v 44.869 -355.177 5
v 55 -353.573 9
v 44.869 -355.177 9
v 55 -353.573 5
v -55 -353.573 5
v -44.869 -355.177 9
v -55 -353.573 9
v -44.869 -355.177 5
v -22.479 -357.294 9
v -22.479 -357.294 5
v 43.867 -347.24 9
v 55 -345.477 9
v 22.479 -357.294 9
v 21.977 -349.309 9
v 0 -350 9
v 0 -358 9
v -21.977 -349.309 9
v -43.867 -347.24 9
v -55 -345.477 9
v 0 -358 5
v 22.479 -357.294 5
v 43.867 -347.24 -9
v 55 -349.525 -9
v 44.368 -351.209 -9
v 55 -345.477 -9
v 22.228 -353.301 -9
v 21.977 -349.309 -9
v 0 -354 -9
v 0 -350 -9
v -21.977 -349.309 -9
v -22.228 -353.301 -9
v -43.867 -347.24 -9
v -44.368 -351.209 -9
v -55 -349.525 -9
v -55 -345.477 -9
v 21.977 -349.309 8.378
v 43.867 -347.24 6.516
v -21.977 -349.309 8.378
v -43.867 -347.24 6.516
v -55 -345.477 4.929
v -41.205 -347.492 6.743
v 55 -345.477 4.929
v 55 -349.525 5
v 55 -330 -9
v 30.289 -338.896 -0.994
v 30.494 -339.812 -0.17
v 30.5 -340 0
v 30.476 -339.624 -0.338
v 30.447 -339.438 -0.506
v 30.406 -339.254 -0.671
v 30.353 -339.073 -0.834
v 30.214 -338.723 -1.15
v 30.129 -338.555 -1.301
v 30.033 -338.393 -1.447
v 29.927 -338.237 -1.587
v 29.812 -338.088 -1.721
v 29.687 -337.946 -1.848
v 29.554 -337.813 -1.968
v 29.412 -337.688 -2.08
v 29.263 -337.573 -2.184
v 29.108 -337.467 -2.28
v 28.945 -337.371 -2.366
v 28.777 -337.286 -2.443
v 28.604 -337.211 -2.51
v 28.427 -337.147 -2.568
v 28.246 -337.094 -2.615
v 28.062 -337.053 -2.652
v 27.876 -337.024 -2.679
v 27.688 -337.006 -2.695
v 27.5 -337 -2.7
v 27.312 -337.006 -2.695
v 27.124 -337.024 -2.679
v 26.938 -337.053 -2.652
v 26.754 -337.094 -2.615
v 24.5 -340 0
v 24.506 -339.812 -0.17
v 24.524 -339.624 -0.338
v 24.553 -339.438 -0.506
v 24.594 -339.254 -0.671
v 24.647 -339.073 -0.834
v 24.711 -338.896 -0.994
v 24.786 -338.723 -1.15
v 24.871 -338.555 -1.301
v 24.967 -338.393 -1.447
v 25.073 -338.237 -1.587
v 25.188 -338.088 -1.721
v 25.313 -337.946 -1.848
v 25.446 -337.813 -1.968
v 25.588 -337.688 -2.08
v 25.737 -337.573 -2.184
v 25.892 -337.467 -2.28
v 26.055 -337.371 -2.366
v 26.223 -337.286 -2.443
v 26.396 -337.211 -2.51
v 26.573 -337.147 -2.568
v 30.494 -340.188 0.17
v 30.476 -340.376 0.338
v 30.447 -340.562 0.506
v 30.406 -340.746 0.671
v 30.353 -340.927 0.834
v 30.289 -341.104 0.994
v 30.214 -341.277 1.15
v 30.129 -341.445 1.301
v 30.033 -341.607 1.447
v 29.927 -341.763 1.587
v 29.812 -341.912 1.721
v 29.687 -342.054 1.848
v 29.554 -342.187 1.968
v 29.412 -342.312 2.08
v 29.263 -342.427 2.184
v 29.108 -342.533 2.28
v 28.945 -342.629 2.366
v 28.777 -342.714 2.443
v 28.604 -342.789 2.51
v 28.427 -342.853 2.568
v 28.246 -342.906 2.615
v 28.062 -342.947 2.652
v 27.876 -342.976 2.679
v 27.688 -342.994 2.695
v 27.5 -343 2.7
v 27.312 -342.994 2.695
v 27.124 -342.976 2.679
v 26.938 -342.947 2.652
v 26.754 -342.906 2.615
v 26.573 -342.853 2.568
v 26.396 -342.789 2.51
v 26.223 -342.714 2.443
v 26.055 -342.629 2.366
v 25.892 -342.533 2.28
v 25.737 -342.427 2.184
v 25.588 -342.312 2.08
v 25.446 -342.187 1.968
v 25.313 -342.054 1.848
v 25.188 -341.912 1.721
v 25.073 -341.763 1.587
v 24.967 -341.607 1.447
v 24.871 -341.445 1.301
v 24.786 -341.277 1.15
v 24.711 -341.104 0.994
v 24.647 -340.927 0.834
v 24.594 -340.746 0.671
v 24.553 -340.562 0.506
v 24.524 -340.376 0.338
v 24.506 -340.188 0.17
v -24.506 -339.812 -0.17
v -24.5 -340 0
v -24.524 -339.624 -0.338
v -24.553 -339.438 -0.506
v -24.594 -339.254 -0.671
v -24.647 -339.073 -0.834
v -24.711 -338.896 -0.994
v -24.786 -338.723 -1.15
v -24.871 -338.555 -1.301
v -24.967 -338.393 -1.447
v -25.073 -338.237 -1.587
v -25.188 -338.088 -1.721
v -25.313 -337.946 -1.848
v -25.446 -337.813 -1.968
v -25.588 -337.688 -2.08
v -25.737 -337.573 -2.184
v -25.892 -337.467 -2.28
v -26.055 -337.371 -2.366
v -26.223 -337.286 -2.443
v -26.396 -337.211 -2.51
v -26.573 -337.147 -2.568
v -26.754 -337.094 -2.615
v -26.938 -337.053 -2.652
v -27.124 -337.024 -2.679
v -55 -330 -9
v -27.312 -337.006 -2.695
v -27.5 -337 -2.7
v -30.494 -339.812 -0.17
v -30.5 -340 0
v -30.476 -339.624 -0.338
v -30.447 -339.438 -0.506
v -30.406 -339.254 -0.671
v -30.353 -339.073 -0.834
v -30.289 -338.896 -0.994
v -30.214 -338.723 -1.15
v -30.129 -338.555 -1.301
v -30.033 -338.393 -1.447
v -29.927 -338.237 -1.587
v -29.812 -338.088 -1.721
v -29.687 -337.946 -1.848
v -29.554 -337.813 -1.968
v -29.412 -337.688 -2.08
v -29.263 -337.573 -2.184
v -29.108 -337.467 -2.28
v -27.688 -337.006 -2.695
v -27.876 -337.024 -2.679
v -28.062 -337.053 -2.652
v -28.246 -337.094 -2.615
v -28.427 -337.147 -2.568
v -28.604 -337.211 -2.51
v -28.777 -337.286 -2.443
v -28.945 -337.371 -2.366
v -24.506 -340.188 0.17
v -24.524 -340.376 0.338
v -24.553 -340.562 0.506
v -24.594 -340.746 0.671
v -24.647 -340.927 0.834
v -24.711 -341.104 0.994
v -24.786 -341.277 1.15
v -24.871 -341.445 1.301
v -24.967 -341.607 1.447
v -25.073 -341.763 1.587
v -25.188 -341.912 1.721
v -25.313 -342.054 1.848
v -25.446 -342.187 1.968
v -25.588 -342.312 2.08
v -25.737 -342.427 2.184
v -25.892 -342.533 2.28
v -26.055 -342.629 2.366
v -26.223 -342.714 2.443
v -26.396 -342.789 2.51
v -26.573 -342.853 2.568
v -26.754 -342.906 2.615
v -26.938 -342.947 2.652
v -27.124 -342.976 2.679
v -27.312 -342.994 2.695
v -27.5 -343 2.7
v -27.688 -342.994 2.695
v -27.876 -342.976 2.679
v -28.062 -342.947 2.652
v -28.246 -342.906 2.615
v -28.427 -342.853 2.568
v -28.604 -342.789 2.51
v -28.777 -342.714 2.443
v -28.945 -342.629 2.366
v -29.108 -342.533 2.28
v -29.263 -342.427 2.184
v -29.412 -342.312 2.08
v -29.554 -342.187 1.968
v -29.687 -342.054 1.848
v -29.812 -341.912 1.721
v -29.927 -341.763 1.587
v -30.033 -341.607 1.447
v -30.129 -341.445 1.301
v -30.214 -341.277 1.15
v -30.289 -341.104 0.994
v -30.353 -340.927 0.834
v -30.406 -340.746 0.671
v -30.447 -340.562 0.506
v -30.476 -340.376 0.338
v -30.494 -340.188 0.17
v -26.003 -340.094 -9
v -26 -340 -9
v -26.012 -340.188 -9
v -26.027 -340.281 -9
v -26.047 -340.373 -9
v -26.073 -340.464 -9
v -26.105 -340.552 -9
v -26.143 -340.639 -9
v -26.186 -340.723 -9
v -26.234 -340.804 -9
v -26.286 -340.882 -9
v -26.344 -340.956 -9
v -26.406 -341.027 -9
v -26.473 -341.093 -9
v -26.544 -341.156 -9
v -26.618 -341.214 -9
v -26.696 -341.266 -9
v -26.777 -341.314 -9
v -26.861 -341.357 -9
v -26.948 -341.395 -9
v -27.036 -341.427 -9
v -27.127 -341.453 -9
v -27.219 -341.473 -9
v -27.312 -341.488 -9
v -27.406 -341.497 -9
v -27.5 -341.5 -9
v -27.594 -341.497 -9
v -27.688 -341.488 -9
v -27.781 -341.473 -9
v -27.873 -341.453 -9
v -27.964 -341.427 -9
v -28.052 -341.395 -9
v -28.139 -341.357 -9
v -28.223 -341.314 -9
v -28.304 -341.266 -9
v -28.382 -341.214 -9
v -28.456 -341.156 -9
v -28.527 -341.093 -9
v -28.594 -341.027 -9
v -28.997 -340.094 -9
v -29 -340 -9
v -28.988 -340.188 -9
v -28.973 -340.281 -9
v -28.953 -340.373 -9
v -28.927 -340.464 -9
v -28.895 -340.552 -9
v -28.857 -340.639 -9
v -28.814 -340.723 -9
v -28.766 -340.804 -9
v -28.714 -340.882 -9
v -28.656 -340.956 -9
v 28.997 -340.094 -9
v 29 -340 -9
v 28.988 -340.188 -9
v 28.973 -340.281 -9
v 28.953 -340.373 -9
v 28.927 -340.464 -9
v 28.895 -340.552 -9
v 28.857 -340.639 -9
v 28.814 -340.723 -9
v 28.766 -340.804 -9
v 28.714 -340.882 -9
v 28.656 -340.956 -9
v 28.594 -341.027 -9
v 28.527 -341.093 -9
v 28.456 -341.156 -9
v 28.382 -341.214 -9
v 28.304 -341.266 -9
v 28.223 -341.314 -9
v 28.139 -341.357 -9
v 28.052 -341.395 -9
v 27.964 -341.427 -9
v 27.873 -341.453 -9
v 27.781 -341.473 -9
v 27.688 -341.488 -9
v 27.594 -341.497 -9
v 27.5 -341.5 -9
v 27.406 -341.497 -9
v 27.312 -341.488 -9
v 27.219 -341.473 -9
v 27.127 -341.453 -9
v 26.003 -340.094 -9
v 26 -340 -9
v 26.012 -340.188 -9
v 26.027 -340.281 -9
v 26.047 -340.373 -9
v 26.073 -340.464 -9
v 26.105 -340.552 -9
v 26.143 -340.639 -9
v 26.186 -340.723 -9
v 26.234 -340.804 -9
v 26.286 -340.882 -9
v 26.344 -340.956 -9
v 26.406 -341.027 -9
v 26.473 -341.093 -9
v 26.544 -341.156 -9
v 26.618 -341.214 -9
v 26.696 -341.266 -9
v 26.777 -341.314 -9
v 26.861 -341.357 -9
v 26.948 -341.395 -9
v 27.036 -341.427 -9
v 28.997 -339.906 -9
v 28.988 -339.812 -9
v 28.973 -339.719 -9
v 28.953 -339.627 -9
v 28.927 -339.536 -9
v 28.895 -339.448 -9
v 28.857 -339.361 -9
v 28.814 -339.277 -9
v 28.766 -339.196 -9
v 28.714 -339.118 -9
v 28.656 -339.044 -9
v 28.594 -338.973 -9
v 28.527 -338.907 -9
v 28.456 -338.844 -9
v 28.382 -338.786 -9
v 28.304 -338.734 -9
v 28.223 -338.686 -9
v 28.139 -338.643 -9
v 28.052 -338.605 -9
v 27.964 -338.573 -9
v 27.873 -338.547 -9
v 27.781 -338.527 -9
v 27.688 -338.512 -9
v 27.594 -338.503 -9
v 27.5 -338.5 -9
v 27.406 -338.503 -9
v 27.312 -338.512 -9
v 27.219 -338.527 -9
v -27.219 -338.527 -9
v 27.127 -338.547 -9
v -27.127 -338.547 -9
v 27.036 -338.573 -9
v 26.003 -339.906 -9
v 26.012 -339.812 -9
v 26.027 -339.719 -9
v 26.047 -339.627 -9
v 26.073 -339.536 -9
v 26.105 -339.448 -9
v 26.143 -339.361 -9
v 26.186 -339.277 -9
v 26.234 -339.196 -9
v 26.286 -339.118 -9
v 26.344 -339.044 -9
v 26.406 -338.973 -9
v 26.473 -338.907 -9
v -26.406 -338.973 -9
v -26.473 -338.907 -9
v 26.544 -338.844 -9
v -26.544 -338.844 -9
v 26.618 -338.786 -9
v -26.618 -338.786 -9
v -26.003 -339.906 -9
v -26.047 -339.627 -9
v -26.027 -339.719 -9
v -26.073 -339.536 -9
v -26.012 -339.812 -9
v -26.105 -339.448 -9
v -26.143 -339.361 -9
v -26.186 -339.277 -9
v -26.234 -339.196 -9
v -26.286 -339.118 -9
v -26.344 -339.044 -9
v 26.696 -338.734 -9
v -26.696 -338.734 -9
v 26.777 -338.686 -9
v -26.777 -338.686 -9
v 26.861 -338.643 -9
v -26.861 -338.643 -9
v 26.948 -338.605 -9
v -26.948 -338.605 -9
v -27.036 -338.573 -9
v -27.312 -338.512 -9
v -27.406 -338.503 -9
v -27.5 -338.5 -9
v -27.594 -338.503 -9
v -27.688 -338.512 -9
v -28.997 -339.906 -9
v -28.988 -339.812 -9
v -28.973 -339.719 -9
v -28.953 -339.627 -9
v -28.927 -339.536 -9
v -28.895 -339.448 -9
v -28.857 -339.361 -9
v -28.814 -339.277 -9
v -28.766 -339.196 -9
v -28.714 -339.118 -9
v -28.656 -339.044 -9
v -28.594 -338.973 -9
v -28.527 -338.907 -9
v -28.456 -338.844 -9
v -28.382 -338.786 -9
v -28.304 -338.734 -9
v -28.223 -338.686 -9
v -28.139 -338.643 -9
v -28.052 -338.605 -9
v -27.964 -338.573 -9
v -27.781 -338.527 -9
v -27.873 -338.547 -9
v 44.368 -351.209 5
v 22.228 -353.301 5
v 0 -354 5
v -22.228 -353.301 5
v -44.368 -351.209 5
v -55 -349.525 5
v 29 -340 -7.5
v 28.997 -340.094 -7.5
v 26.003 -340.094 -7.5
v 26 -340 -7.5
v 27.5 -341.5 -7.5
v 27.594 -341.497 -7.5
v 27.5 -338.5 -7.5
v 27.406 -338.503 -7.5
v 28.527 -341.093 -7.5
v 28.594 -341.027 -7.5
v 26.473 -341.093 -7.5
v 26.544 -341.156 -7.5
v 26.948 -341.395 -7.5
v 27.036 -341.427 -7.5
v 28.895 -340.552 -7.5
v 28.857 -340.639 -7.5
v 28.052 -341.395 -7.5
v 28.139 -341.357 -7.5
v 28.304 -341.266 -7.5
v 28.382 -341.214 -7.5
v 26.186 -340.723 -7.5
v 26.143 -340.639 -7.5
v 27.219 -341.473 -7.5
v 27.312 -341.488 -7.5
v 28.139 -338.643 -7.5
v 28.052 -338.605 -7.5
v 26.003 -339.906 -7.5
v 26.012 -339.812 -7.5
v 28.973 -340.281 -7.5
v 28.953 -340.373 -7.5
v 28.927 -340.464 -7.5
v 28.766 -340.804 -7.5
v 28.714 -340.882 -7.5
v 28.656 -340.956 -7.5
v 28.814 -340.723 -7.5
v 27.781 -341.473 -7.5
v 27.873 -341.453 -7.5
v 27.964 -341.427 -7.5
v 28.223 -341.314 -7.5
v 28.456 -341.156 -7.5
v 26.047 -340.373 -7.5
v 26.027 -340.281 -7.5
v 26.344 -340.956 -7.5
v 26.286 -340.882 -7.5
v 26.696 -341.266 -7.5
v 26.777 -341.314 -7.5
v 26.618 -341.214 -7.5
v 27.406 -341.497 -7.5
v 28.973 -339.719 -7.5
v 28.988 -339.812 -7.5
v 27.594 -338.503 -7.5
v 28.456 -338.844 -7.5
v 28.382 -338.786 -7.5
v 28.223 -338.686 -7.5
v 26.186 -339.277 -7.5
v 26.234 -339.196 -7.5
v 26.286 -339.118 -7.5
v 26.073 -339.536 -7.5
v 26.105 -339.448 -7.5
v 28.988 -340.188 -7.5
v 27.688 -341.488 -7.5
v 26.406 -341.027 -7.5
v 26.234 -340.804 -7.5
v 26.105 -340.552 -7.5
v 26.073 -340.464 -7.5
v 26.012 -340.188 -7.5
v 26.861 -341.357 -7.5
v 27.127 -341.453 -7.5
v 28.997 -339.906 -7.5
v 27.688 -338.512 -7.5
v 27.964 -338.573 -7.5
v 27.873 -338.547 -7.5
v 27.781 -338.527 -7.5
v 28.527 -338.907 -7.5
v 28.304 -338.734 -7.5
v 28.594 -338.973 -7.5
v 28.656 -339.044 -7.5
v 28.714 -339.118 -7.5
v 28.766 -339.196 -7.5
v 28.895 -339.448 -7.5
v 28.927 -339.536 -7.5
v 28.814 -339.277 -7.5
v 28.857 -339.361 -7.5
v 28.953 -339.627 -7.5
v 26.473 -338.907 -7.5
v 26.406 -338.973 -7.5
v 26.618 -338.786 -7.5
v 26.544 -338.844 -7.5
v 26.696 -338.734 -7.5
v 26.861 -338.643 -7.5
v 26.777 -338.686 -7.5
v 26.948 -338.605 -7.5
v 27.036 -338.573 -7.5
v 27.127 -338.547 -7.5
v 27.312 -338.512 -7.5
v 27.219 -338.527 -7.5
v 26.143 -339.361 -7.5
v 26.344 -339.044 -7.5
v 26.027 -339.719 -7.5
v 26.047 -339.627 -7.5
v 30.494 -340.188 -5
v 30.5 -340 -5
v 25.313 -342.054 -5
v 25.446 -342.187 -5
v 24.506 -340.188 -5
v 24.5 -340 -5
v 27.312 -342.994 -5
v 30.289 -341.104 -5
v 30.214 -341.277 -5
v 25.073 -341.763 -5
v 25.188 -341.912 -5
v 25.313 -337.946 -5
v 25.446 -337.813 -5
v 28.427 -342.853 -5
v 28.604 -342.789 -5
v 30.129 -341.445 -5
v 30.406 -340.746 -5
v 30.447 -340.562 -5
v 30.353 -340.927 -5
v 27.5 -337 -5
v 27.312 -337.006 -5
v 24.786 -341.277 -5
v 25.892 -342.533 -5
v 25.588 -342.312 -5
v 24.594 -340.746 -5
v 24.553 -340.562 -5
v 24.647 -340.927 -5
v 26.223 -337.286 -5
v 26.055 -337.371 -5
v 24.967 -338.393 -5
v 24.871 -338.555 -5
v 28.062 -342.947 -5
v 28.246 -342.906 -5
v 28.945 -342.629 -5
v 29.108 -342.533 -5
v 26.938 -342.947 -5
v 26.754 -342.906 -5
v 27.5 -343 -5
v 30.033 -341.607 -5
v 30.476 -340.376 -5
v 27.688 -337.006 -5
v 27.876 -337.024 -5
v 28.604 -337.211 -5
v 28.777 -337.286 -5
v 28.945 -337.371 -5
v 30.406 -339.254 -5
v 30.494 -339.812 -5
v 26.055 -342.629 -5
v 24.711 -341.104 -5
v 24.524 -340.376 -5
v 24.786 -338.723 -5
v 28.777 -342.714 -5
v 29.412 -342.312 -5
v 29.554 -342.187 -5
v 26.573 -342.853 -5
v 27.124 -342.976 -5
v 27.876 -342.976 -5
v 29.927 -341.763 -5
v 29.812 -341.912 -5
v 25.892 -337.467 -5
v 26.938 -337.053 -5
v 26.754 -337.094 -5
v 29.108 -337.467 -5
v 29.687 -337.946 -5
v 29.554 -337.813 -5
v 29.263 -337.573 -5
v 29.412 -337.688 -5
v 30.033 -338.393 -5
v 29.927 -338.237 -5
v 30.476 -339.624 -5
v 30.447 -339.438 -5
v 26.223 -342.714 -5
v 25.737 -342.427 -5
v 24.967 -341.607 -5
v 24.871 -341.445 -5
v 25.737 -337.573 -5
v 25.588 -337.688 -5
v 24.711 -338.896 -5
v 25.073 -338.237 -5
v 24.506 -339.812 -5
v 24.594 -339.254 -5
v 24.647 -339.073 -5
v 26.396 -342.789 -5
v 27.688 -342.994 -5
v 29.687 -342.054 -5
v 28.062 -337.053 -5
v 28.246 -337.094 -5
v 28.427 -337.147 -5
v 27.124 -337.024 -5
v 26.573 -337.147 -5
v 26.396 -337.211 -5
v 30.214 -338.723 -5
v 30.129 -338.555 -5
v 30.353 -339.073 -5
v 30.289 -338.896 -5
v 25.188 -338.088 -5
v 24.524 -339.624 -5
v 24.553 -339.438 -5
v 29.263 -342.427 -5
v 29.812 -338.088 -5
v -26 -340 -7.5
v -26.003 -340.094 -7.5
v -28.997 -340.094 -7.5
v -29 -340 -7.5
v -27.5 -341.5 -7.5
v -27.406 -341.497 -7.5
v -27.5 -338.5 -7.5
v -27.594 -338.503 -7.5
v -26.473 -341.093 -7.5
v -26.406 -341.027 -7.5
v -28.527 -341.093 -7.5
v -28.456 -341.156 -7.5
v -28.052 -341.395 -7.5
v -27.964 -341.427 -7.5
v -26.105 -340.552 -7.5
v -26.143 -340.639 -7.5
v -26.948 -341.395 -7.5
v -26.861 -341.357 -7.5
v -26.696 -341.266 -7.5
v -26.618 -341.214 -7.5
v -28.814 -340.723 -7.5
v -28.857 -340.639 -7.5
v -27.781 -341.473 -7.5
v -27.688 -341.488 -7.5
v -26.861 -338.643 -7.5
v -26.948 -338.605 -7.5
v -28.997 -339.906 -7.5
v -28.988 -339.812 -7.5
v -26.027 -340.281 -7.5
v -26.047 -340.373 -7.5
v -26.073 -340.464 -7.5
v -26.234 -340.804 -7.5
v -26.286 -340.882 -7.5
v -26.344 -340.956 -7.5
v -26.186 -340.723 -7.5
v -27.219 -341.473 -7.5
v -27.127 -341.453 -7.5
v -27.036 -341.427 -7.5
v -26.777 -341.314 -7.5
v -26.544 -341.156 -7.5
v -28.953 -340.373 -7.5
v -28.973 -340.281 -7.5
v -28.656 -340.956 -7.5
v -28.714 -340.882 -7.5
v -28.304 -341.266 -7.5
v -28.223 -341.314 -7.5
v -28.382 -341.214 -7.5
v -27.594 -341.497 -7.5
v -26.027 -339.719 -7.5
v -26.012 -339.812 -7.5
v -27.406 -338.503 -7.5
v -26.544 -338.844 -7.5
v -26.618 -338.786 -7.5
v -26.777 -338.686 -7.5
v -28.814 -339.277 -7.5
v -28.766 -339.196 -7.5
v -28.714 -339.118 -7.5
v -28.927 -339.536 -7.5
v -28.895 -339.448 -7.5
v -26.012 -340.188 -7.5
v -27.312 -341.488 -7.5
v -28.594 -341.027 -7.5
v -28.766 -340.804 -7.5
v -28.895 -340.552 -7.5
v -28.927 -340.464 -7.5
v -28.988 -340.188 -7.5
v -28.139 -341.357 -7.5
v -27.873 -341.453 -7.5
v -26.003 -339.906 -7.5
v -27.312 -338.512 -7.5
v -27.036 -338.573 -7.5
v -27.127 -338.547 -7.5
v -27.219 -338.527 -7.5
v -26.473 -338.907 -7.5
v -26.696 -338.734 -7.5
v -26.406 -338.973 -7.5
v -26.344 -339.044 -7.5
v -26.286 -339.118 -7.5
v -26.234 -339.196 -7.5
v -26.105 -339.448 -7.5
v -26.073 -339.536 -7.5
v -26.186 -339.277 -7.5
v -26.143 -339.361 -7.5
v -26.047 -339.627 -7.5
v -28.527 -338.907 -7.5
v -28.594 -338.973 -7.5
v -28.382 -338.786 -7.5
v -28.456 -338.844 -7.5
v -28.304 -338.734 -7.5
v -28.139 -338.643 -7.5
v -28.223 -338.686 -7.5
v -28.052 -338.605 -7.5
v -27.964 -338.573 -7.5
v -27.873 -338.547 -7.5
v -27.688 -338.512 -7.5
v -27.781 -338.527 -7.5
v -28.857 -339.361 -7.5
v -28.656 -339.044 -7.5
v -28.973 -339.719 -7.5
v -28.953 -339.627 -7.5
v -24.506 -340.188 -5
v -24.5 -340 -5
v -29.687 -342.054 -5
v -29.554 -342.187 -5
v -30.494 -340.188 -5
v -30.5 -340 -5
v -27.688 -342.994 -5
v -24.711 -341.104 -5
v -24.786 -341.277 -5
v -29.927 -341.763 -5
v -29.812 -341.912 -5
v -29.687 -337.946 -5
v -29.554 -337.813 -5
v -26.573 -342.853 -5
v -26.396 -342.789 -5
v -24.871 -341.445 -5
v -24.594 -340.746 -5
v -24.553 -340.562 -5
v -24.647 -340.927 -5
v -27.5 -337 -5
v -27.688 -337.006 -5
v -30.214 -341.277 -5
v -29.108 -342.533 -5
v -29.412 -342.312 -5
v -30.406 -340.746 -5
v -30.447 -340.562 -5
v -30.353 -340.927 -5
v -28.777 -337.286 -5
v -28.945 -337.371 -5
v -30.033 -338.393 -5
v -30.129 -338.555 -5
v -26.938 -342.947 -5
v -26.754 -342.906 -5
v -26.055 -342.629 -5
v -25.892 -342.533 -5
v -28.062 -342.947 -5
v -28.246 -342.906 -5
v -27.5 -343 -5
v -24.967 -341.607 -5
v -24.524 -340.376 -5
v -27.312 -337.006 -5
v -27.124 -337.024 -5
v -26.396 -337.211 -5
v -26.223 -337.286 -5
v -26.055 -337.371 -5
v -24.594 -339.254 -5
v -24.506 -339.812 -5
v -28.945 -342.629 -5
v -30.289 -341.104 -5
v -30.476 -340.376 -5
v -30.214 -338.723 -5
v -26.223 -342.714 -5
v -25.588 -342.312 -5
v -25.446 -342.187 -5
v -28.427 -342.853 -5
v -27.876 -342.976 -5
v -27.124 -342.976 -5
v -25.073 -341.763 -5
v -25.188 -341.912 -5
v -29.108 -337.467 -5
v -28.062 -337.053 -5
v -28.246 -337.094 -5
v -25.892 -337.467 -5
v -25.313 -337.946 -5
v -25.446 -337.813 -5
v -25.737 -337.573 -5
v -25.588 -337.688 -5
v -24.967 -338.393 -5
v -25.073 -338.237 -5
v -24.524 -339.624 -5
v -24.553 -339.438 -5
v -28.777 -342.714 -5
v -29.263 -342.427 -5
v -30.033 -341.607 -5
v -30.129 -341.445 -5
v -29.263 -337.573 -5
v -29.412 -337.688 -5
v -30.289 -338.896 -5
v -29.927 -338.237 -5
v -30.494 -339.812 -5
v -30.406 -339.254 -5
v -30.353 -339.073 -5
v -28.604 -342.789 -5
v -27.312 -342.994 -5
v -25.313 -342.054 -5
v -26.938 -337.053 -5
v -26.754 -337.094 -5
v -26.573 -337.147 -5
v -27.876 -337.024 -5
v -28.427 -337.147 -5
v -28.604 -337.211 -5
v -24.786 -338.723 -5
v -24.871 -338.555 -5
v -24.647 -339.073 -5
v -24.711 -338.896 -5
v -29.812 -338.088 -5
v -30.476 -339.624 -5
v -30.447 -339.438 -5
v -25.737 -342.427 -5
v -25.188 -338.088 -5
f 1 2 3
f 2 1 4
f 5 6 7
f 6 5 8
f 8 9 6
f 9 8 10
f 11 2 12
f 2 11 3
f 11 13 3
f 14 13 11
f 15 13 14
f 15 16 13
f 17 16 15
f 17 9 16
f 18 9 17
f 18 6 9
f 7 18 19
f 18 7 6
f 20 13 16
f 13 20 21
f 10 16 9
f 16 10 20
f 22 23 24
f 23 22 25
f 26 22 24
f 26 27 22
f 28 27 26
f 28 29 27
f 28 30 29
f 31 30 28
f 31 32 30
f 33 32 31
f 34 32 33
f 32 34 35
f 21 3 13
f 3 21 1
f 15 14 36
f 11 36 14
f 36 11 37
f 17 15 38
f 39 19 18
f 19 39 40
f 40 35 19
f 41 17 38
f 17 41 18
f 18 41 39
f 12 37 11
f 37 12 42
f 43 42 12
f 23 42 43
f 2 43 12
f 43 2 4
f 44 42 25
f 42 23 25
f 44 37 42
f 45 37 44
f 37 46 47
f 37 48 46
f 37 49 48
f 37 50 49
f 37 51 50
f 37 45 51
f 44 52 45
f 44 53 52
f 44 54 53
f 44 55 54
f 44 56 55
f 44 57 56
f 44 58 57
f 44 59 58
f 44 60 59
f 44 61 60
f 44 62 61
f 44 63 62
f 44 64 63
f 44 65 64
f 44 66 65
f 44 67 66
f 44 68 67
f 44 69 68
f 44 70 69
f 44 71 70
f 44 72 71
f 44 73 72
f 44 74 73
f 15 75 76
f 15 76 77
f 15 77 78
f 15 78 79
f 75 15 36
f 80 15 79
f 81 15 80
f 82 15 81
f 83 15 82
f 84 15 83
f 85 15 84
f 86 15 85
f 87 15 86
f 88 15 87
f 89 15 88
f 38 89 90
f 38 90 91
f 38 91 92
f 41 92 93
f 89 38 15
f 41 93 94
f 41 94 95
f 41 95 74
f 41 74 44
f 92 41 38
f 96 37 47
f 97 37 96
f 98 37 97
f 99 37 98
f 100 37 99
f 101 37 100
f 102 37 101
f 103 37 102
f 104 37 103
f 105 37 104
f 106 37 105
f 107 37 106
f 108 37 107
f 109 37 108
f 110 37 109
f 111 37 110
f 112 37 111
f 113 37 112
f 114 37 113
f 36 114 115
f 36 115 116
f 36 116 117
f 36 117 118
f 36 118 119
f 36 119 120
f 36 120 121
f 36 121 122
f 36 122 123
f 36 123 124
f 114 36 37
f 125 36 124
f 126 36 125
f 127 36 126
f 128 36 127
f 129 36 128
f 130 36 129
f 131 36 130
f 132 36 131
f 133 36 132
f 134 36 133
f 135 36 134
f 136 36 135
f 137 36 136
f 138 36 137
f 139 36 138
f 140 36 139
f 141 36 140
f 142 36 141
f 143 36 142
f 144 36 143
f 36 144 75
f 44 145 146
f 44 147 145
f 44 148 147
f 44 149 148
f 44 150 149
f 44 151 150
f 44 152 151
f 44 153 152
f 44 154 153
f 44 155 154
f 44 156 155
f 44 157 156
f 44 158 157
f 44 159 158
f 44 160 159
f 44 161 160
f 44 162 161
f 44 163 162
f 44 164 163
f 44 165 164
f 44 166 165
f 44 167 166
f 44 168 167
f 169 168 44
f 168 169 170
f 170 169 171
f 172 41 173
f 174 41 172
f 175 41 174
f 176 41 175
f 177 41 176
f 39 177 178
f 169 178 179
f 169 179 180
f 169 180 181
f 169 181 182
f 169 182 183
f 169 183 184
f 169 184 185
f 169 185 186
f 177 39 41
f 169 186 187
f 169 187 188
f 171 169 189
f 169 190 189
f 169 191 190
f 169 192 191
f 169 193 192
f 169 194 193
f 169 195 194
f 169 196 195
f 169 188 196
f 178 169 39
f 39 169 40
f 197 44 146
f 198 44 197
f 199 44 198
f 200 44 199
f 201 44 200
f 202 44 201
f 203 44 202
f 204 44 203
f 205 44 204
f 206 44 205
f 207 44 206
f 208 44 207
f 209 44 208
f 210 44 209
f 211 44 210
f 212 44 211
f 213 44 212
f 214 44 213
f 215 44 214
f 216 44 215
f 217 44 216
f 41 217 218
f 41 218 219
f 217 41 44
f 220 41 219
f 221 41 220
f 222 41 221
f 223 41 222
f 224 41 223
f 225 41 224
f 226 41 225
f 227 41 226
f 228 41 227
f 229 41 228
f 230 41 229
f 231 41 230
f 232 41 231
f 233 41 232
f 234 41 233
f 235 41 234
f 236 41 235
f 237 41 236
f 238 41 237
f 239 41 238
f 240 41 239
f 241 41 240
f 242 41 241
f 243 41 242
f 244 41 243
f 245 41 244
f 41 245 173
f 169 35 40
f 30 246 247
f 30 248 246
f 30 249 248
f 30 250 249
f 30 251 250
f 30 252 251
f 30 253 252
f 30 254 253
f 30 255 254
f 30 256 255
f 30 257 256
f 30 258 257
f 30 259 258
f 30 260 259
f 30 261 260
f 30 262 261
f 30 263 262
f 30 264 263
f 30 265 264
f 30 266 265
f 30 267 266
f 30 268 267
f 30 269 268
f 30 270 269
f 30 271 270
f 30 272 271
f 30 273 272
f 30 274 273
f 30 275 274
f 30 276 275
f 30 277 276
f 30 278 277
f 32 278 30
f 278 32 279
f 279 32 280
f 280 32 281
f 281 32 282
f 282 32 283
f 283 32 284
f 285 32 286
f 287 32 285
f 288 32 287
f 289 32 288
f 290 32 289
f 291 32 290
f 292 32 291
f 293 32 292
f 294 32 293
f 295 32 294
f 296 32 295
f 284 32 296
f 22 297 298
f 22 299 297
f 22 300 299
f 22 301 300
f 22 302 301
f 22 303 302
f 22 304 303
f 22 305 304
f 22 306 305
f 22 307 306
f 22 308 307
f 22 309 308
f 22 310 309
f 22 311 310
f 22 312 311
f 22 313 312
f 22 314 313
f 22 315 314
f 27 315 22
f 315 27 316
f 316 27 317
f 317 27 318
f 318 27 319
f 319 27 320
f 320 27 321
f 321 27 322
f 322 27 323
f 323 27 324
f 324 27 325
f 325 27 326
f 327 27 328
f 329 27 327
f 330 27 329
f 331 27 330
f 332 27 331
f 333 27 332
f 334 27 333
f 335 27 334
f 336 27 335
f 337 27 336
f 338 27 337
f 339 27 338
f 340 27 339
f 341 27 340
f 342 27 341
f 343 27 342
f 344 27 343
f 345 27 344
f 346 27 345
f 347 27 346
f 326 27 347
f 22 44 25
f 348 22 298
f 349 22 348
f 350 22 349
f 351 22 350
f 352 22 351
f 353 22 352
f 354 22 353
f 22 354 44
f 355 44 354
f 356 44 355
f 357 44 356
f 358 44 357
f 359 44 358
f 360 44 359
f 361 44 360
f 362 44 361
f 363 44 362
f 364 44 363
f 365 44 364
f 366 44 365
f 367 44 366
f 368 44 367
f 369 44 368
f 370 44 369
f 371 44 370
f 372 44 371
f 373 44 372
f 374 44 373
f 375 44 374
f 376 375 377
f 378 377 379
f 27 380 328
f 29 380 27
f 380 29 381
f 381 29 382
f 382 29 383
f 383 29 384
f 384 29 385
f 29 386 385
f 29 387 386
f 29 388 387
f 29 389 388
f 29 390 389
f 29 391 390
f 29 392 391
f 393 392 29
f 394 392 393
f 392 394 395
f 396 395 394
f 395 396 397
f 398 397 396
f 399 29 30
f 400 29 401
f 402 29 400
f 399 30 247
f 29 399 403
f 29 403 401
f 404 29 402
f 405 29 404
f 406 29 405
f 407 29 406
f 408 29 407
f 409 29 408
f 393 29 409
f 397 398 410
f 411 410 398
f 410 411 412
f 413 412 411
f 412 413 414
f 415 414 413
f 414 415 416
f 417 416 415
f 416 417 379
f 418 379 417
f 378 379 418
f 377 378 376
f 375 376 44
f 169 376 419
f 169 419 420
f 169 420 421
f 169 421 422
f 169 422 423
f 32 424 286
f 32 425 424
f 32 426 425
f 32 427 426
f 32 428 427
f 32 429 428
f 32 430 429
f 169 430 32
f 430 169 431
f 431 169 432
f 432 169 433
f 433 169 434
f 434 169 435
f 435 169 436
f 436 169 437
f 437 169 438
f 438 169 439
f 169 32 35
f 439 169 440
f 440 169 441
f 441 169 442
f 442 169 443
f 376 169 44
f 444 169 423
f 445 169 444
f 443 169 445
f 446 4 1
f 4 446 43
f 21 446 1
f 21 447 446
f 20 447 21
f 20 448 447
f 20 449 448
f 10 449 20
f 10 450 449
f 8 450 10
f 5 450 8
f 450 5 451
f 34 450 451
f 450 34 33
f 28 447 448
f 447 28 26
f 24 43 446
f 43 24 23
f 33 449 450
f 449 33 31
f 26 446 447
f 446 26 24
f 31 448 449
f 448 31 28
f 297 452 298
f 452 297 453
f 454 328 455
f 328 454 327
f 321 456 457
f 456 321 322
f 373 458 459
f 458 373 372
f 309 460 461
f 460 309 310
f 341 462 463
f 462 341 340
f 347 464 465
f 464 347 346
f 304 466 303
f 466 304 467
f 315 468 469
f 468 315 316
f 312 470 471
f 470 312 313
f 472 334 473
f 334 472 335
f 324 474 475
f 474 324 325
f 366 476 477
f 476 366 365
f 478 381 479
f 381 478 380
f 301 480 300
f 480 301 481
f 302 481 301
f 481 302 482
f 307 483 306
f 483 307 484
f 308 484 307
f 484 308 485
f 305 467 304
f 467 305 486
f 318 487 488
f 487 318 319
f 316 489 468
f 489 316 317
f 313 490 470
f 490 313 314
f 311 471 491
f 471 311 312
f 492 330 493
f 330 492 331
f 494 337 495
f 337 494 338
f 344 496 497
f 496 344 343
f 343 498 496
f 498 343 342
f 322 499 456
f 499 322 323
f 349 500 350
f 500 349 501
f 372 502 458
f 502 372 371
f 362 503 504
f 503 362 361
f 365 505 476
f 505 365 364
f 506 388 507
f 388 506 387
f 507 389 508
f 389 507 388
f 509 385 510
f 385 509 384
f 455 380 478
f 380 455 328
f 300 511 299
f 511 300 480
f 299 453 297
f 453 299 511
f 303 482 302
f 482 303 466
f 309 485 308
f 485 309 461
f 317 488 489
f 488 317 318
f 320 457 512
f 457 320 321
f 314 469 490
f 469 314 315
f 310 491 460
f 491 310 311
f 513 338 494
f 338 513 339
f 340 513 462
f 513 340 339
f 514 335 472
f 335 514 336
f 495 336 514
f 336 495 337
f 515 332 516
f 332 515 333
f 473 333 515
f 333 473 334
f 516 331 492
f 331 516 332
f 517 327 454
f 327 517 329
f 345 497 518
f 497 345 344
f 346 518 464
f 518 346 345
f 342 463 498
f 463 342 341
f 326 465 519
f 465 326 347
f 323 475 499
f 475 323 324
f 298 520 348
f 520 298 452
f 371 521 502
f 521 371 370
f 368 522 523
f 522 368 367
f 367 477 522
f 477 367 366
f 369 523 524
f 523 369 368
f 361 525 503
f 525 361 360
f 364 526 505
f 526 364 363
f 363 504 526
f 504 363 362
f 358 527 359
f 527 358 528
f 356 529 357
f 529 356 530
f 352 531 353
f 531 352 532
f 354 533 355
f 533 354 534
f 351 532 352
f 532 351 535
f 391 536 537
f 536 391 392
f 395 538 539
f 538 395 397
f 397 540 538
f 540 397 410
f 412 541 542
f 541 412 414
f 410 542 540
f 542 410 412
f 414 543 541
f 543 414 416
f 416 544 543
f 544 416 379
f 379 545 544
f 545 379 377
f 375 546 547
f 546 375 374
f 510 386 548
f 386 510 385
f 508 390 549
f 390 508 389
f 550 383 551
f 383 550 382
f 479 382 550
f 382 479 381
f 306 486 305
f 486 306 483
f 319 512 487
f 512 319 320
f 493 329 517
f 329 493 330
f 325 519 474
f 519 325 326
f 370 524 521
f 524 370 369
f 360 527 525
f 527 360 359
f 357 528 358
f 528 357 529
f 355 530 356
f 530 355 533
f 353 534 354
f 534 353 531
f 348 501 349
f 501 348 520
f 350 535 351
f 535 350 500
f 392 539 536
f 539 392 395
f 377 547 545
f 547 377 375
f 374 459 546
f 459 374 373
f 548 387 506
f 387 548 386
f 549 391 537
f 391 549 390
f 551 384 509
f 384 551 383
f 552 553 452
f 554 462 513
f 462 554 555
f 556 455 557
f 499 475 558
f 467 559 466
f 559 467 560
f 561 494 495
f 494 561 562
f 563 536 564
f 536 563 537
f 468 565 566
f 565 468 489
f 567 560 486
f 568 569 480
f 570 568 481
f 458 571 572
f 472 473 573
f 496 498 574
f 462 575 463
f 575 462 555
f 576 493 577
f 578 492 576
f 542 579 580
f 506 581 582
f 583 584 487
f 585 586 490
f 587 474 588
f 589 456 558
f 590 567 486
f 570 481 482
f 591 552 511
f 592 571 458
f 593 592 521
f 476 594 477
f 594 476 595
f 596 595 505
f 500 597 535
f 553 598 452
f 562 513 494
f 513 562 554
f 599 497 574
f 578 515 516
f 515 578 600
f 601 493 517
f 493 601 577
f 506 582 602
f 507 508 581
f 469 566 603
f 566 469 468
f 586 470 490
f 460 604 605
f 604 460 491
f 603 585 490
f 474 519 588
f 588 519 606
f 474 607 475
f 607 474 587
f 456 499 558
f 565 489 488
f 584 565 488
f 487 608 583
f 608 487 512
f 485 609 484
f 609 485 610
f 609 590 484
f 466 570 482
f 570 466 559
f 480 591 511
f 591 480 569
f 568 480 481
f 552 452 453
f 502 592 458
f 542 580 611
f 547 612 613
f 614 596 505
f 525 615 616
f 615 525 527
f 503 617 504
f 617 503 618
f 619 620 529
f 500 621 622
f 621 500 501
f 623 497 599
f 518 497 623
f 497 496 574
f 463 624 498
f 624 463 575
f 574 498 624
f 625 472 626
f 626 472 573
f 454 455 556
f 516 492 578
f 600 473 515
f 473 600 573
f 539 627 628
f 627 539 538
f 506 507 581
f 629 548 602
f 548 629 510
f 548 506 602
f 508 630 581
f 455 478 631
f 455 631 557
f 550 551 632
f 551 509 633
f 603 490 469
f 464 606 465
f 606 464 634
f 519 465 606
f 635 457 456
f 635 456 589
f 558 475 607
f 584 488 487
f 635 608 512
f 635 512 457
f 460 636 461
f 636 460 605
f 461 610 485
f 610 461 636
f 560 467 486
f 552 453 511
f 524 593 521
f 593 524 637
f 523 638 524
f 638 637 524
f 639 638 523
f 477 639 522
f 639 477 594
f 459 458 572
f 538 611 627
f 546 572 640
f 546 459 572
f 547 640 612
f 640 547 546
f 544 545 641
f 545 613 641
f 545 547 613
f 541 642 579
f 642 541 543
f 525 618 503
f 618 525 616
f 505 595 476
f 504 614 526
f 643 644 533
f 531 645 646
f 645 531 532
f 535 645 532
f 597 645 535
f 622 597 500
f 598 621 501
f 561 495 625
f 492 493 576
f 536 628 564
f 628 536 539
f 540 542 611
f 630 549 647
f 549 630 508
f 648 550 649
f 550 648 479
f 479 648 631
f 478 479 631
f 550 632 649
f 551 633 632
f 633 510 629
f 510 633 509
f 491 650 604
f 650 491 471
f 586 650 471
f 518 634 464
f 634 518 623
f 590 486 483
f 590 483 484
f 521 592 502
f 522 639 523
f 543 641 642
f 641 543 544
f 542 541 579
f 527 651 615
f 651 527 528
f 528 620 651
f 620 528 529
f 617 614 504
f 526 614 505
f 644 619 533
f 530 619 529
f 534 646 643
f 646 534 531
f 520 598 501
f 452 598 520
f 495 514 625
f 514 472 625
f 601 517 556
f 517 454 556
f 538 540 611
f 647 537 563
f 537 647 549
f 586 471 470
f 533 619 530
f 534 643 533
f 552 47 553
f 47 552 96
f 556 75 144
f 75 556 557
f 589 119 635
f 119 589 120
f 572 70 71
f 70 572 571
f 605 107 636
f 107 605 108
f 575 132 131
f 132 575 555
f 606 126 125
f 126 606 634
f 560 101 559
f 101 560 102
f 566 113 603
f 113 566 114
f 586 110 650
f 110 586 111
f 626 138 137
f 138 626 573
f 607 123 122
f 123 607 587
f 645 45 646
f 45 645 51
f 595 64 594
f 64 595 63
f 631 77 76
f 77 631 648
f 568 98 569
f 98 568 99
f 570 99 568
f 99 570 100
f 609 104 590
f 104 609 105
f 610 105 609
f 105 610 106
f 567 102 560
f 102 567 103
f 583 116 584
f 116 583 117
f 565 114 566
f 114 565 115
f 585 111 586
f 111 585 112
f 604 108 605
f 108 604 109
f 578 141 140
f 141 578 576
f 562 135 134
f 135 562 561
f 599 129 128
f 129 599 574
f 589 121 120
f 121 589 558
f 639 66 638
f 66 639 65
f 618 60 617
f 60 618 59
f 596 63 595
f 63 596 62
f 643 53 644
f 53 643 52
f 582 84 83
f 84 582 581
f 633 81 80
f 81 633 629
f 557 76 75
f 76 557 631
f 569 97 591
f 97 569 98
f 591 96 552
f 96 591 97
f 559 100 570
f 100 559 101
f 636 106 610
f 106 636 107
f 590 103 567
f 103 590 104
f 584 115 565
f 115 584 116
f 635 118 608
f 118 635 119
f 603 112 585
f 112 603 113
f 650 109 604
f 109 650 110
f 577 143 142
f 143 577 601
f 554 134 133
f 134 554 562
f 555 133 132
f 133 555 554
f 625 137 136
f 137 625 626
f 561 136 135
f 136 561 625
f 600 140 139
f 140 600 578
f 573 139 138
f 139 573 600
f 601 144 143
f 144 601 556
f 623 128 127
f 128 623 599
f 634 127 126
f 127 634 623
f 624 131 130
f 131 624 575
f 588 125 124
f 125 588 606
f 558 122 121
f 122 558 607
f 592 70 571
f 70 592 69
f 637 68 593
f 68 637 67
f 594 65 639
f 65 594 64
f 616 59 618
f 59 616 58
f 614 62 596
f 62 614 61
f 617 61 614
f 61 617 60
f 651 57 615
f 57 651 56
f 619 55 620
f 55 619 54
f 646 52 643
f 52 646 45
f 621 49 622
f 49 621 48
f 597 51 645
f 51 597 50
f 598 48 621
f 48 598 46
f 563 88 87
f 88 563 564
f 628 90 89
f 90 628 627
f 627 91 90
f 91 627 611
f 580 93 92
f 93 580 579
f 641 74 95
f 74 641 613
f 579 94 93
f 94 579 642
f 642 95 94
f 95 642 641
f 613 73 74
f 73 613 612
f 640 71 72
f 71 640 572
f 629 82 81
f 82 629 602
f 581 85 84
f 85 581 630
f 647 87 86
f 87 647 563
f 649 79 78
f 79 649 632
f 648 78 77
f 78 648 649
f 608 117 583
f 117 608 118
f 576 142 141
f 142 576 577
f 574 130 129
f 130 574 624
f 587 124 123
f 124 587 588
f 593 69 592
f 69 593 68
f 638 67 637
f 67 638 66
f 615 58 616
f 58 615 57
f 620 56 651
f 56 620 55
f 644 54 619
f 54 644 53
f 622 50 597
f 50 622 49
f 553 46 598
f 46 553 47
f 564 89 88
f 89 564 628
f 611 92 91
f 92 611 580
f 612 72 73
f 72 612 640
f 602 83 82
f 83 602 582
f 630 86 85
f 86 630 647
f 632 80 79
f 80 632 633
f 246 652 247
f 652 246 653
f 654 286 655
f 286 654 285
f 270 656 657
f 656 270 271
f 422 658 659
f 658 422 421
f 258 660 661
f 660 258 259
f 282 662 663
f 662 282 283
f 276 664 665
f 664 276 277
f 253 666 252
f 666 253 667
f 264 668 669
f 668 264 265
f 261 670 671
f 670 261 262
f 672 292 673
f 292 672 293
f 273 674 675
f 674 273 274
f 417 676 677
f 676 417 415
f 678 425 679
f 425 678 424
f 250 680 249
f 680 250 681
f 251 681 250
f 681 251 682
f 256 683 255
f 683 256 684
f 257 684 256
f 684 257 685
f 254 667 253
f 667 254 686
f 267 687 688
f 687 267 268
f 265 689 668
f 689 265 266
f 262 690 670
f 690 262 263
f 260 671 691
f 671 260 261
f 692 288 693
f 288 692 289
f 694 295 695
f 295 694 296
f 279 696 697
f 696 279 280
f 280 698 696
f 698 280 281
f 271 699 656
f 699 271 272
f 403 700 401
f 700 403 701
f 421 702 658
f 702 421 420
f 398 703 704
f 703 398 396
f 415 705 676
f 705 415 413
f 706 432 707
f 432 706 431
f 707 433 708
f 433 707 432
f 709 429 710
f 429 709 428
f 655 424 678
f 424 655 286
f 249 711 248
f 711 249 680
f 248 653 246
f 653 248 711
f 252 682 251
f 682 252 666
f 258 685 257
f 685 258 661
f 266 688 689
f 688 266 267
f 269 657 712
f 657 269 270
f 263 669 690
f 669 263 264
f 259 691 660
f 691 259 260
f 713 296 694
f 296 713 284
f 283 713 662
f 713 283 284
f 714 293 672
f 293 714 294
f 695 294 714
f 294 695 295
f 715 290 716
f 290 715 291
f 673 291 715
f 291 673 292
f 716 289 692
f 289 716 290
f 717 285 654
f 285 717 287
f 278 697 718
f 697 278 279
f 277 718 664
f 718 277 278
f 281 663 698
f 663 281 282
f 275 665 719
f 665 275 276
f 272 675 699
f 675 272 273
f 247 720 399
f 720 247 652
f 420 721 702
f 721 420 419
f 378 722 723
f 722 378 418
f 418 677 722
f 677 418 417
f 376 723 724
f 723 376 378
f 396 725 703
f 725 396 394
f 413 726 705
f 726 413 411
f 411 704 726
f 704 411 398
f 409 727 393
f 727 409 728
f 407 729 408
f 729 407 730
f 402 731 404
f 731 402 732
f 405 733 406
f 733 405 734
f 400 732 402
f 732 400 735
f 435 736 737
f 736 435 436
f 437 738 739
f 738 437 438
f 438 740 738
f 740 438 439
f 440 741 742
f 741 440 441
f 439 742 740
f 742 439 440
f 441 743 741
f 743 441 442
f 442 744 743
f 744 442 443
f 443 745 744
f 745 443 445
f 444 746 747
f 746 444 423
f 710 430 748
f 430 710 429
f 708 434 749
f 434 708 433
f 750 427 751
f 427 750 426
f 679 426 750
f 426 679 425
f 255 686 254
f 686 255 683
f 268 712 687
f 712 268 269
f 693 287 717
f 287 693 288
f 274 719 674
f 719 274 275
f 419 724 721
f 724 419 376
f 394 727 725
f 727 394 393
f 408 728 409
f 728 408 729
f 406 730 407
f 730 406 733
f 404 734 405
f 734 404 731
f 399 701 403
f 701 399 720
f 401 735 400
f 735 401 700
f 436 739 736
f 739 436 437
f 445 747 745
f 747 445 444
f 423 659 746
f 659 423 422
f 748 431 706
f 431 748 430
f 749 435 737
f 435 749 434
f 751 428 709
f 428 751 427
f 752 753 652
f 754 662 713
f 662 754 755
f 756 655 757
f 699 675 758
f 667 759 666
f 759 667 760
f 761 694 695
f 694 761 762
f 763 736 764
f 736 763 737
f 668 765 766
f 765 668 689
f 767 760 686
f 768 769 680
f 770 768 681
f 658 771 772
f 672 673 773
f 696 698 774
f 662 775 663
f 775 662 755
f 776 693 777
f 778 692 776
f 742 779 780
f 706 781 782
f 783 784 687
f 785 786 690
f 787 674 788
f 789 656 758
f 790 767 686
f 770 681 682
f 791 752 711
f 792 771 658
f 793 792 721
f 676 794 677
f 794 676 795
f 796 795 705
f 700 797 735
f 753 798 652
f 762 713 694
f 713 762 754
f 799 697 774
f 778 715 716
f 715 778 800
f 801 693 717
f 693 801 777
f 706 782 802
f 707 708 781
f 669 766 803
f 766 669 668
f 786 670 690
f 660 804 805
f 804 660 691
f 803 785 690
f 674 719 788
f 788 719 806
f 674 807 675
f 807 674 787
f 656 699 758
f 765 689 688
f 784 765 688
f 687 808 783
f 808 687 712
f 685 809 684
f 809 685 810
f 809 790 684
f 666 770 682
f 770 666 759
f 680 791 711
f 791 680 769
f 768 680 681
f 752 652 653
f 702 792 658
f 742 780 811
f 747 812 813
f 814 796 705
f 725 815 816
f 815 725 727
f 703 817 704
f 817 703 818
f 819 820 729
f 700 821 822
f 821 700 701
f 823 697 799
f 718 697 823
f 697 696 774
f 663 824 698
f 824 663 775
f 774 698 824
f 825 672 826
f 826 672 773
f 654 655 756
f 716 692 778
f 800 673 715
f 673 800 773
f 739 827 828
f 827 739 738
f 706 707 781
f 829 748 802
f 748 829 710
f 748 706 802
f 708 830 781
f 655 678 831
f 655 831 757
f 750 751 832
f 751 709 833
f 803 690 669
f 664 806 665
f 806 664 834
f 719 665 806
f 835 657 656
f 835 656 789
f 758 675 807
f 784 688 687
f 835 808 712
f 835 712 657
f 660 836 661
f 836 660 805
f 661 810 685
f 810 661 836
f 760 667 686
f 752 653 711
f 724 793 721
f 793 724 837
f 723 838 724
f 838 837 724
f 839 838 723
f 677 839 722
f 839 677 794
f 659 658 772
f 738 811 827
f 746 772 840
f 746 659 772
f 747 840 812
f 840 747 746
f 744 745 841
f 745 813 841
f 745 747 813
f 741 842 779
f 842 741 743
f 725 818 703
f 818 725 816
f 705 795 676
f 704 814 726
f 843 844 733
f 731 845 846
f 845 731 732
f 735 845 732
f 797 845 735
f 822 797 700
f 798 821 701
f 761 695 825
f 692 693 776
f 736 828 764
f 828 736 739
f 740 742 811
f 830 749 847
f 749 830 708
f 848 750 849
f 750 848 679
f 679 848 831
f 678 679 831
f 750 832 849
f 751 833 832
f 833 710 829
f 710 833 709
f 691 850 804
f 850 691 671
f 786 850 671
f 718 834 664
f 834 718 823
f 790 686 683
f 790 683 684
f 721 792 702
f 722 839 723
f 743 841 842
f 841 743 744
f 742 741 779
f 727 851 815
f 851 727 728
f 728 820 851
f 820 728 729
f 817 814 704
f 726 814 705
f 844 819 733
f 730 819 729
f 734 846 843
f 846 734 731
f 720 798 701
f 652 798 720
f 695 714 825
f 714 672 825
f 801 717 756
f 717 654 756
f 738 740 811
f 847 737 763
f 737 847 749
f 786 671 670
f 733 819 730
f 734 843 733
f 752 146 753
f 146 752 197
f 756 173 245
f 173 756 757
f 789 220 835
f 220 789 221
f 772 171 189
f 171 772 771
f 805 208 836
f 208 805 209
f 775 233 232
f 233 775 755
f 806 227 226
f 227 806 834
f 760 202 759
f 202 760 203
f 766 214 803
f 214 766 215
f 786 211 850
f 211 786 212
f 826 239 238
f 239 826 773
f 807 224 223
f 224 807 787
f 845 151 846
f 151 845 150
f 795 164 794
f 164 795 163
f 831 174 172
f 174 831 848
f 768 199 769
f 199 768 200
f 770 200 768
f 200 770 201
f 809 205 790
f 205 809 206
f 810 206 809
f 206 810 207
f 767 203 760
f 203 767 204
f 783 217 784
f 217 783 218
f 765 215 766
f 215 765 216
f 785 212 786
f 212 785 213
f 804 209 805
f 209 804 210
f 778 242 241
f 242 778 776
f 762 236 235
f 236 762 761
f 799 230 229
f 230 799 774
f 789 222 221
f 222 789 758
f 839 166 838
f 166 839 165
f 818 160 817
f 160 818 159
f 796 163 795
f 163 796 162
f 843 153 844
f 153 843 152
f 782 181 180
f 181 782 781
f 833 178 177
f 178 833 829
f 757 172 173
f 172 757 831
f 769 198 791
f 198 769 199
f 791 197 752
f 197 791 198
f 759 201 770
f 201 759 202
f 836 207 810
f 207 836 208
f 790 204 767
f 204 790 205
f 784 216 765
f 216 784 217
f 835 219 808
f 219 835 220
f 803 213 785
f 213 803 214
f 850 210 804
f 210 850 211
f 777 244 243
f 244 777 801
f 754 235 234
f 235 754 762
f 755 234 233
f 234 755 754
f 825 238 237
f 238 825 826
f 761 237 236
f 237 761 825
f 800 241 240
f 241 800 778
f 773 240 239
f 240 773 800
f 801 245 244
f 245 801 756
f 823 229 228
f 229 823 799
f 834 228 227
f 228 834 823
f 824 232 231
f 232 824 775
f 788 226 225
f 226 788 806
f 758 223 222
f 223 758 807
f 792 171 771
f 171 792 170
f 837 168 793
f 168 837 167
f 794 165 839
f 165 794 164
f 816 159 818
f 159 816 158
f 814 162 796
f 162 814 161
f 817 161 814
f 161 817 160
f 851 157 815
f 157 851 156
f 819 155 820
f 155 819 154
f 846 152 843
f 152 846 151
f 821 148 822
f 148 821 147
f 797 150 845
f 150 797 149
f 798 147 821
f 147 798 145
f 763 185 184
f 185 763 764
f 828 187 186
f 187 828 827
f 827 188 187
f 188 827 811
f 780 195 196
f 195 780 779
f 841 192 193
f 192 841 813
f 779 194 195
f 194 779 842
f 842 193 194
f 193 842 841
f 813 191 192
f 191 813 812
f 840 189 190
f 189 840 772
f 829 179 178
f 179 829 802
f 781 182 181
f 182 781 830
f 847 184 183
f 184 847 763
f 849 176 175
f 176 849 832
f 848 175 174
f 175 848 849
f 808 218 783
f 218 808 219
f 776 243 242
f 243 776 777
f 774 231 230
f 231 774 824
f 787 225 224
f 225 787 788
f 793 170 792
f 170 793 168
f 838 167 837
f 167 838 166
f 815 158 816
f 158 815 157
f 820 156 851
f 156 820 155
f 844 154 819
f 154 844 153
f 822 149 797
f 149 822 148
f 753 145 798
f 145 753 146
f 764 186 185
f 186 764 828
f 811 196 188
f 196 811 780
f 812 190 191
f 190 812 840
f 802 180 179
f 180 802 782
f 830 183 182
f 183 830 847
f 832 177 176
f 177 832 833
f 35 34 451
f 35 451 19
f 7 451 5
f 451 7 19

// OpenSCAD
rayon=350;
epaisseur = 4;
hauteur=18;
longueur=110;
largeur=20;

module tuyau(rayon_int, epaisseur, longueur) {
    difference(){
        cylinder(r=rayon_int+epaisseur, h=longueur, $fn=100, center=true);
        cylinder(r=rayon_int, h=longueur+1, $fn=100, center=true);
    }
}

module prisme(x,y,z){
    rotate([0,-90,-90])
    linear_extrude(height = y, center = true) {
    polygon(points = [[0, 0], [z, 0],[0, x]], paths = [[0, 1, 2]]);
    }
}

module vis(){
    cylinder (r=1.5, h=13, $fn=100);
    cylinder (r1=3, r2=1.5, h=2.5, $fn=100);
    translate([0,0,-30])
    cylinder (r=3, h=30, $fn=100);
}

module support(){
    difference(){
        union(){
            tuyau(rayon, 2*epaisseur, hauteur);
            translate([0,-rayon,-hauteur/2])
            rotate([0,0,90])
            prisme(largeur,longueur,hauteur);
        }
        tuyau(rayon+2*epaisseur, 2*epaisseur, hauteur);
        translate([0,0,-epaisseur])
        tuyau(rayon+epaisseur, 2*epaisseur, hauteur);
        translate([-(rayon+epaisseur), 0, -(hauteur+1)/2])
        cube([2*(rayon+epaisseur),2*(rayon+epaisseur),hauteur+1]);
        translate([longueur/2, -(rayon+epaisseur), -(hauteur+1)/2])
        cube([(rayon+epaisseur),2*(rayon+epaisseur),hauteur+1]);
        translate([-longueur/2-(rayon+epaisseur), -(rayon+epaisseur), -(hauteur+1)/2])
        cube([(rayon+epaisseur),2*(rayon+epaisseur),hauteur+1]);
        translate([longueur/4,largeur/2-rayon,epaisseur-hauteur/2])
        rotate([180,0,0])
        #vis();
        translate([-longueur/4,largeur/2-rayon,epaisseur-hauteur/2])
        rotate([180,0,0])
        #vis();
    }
}

support();
